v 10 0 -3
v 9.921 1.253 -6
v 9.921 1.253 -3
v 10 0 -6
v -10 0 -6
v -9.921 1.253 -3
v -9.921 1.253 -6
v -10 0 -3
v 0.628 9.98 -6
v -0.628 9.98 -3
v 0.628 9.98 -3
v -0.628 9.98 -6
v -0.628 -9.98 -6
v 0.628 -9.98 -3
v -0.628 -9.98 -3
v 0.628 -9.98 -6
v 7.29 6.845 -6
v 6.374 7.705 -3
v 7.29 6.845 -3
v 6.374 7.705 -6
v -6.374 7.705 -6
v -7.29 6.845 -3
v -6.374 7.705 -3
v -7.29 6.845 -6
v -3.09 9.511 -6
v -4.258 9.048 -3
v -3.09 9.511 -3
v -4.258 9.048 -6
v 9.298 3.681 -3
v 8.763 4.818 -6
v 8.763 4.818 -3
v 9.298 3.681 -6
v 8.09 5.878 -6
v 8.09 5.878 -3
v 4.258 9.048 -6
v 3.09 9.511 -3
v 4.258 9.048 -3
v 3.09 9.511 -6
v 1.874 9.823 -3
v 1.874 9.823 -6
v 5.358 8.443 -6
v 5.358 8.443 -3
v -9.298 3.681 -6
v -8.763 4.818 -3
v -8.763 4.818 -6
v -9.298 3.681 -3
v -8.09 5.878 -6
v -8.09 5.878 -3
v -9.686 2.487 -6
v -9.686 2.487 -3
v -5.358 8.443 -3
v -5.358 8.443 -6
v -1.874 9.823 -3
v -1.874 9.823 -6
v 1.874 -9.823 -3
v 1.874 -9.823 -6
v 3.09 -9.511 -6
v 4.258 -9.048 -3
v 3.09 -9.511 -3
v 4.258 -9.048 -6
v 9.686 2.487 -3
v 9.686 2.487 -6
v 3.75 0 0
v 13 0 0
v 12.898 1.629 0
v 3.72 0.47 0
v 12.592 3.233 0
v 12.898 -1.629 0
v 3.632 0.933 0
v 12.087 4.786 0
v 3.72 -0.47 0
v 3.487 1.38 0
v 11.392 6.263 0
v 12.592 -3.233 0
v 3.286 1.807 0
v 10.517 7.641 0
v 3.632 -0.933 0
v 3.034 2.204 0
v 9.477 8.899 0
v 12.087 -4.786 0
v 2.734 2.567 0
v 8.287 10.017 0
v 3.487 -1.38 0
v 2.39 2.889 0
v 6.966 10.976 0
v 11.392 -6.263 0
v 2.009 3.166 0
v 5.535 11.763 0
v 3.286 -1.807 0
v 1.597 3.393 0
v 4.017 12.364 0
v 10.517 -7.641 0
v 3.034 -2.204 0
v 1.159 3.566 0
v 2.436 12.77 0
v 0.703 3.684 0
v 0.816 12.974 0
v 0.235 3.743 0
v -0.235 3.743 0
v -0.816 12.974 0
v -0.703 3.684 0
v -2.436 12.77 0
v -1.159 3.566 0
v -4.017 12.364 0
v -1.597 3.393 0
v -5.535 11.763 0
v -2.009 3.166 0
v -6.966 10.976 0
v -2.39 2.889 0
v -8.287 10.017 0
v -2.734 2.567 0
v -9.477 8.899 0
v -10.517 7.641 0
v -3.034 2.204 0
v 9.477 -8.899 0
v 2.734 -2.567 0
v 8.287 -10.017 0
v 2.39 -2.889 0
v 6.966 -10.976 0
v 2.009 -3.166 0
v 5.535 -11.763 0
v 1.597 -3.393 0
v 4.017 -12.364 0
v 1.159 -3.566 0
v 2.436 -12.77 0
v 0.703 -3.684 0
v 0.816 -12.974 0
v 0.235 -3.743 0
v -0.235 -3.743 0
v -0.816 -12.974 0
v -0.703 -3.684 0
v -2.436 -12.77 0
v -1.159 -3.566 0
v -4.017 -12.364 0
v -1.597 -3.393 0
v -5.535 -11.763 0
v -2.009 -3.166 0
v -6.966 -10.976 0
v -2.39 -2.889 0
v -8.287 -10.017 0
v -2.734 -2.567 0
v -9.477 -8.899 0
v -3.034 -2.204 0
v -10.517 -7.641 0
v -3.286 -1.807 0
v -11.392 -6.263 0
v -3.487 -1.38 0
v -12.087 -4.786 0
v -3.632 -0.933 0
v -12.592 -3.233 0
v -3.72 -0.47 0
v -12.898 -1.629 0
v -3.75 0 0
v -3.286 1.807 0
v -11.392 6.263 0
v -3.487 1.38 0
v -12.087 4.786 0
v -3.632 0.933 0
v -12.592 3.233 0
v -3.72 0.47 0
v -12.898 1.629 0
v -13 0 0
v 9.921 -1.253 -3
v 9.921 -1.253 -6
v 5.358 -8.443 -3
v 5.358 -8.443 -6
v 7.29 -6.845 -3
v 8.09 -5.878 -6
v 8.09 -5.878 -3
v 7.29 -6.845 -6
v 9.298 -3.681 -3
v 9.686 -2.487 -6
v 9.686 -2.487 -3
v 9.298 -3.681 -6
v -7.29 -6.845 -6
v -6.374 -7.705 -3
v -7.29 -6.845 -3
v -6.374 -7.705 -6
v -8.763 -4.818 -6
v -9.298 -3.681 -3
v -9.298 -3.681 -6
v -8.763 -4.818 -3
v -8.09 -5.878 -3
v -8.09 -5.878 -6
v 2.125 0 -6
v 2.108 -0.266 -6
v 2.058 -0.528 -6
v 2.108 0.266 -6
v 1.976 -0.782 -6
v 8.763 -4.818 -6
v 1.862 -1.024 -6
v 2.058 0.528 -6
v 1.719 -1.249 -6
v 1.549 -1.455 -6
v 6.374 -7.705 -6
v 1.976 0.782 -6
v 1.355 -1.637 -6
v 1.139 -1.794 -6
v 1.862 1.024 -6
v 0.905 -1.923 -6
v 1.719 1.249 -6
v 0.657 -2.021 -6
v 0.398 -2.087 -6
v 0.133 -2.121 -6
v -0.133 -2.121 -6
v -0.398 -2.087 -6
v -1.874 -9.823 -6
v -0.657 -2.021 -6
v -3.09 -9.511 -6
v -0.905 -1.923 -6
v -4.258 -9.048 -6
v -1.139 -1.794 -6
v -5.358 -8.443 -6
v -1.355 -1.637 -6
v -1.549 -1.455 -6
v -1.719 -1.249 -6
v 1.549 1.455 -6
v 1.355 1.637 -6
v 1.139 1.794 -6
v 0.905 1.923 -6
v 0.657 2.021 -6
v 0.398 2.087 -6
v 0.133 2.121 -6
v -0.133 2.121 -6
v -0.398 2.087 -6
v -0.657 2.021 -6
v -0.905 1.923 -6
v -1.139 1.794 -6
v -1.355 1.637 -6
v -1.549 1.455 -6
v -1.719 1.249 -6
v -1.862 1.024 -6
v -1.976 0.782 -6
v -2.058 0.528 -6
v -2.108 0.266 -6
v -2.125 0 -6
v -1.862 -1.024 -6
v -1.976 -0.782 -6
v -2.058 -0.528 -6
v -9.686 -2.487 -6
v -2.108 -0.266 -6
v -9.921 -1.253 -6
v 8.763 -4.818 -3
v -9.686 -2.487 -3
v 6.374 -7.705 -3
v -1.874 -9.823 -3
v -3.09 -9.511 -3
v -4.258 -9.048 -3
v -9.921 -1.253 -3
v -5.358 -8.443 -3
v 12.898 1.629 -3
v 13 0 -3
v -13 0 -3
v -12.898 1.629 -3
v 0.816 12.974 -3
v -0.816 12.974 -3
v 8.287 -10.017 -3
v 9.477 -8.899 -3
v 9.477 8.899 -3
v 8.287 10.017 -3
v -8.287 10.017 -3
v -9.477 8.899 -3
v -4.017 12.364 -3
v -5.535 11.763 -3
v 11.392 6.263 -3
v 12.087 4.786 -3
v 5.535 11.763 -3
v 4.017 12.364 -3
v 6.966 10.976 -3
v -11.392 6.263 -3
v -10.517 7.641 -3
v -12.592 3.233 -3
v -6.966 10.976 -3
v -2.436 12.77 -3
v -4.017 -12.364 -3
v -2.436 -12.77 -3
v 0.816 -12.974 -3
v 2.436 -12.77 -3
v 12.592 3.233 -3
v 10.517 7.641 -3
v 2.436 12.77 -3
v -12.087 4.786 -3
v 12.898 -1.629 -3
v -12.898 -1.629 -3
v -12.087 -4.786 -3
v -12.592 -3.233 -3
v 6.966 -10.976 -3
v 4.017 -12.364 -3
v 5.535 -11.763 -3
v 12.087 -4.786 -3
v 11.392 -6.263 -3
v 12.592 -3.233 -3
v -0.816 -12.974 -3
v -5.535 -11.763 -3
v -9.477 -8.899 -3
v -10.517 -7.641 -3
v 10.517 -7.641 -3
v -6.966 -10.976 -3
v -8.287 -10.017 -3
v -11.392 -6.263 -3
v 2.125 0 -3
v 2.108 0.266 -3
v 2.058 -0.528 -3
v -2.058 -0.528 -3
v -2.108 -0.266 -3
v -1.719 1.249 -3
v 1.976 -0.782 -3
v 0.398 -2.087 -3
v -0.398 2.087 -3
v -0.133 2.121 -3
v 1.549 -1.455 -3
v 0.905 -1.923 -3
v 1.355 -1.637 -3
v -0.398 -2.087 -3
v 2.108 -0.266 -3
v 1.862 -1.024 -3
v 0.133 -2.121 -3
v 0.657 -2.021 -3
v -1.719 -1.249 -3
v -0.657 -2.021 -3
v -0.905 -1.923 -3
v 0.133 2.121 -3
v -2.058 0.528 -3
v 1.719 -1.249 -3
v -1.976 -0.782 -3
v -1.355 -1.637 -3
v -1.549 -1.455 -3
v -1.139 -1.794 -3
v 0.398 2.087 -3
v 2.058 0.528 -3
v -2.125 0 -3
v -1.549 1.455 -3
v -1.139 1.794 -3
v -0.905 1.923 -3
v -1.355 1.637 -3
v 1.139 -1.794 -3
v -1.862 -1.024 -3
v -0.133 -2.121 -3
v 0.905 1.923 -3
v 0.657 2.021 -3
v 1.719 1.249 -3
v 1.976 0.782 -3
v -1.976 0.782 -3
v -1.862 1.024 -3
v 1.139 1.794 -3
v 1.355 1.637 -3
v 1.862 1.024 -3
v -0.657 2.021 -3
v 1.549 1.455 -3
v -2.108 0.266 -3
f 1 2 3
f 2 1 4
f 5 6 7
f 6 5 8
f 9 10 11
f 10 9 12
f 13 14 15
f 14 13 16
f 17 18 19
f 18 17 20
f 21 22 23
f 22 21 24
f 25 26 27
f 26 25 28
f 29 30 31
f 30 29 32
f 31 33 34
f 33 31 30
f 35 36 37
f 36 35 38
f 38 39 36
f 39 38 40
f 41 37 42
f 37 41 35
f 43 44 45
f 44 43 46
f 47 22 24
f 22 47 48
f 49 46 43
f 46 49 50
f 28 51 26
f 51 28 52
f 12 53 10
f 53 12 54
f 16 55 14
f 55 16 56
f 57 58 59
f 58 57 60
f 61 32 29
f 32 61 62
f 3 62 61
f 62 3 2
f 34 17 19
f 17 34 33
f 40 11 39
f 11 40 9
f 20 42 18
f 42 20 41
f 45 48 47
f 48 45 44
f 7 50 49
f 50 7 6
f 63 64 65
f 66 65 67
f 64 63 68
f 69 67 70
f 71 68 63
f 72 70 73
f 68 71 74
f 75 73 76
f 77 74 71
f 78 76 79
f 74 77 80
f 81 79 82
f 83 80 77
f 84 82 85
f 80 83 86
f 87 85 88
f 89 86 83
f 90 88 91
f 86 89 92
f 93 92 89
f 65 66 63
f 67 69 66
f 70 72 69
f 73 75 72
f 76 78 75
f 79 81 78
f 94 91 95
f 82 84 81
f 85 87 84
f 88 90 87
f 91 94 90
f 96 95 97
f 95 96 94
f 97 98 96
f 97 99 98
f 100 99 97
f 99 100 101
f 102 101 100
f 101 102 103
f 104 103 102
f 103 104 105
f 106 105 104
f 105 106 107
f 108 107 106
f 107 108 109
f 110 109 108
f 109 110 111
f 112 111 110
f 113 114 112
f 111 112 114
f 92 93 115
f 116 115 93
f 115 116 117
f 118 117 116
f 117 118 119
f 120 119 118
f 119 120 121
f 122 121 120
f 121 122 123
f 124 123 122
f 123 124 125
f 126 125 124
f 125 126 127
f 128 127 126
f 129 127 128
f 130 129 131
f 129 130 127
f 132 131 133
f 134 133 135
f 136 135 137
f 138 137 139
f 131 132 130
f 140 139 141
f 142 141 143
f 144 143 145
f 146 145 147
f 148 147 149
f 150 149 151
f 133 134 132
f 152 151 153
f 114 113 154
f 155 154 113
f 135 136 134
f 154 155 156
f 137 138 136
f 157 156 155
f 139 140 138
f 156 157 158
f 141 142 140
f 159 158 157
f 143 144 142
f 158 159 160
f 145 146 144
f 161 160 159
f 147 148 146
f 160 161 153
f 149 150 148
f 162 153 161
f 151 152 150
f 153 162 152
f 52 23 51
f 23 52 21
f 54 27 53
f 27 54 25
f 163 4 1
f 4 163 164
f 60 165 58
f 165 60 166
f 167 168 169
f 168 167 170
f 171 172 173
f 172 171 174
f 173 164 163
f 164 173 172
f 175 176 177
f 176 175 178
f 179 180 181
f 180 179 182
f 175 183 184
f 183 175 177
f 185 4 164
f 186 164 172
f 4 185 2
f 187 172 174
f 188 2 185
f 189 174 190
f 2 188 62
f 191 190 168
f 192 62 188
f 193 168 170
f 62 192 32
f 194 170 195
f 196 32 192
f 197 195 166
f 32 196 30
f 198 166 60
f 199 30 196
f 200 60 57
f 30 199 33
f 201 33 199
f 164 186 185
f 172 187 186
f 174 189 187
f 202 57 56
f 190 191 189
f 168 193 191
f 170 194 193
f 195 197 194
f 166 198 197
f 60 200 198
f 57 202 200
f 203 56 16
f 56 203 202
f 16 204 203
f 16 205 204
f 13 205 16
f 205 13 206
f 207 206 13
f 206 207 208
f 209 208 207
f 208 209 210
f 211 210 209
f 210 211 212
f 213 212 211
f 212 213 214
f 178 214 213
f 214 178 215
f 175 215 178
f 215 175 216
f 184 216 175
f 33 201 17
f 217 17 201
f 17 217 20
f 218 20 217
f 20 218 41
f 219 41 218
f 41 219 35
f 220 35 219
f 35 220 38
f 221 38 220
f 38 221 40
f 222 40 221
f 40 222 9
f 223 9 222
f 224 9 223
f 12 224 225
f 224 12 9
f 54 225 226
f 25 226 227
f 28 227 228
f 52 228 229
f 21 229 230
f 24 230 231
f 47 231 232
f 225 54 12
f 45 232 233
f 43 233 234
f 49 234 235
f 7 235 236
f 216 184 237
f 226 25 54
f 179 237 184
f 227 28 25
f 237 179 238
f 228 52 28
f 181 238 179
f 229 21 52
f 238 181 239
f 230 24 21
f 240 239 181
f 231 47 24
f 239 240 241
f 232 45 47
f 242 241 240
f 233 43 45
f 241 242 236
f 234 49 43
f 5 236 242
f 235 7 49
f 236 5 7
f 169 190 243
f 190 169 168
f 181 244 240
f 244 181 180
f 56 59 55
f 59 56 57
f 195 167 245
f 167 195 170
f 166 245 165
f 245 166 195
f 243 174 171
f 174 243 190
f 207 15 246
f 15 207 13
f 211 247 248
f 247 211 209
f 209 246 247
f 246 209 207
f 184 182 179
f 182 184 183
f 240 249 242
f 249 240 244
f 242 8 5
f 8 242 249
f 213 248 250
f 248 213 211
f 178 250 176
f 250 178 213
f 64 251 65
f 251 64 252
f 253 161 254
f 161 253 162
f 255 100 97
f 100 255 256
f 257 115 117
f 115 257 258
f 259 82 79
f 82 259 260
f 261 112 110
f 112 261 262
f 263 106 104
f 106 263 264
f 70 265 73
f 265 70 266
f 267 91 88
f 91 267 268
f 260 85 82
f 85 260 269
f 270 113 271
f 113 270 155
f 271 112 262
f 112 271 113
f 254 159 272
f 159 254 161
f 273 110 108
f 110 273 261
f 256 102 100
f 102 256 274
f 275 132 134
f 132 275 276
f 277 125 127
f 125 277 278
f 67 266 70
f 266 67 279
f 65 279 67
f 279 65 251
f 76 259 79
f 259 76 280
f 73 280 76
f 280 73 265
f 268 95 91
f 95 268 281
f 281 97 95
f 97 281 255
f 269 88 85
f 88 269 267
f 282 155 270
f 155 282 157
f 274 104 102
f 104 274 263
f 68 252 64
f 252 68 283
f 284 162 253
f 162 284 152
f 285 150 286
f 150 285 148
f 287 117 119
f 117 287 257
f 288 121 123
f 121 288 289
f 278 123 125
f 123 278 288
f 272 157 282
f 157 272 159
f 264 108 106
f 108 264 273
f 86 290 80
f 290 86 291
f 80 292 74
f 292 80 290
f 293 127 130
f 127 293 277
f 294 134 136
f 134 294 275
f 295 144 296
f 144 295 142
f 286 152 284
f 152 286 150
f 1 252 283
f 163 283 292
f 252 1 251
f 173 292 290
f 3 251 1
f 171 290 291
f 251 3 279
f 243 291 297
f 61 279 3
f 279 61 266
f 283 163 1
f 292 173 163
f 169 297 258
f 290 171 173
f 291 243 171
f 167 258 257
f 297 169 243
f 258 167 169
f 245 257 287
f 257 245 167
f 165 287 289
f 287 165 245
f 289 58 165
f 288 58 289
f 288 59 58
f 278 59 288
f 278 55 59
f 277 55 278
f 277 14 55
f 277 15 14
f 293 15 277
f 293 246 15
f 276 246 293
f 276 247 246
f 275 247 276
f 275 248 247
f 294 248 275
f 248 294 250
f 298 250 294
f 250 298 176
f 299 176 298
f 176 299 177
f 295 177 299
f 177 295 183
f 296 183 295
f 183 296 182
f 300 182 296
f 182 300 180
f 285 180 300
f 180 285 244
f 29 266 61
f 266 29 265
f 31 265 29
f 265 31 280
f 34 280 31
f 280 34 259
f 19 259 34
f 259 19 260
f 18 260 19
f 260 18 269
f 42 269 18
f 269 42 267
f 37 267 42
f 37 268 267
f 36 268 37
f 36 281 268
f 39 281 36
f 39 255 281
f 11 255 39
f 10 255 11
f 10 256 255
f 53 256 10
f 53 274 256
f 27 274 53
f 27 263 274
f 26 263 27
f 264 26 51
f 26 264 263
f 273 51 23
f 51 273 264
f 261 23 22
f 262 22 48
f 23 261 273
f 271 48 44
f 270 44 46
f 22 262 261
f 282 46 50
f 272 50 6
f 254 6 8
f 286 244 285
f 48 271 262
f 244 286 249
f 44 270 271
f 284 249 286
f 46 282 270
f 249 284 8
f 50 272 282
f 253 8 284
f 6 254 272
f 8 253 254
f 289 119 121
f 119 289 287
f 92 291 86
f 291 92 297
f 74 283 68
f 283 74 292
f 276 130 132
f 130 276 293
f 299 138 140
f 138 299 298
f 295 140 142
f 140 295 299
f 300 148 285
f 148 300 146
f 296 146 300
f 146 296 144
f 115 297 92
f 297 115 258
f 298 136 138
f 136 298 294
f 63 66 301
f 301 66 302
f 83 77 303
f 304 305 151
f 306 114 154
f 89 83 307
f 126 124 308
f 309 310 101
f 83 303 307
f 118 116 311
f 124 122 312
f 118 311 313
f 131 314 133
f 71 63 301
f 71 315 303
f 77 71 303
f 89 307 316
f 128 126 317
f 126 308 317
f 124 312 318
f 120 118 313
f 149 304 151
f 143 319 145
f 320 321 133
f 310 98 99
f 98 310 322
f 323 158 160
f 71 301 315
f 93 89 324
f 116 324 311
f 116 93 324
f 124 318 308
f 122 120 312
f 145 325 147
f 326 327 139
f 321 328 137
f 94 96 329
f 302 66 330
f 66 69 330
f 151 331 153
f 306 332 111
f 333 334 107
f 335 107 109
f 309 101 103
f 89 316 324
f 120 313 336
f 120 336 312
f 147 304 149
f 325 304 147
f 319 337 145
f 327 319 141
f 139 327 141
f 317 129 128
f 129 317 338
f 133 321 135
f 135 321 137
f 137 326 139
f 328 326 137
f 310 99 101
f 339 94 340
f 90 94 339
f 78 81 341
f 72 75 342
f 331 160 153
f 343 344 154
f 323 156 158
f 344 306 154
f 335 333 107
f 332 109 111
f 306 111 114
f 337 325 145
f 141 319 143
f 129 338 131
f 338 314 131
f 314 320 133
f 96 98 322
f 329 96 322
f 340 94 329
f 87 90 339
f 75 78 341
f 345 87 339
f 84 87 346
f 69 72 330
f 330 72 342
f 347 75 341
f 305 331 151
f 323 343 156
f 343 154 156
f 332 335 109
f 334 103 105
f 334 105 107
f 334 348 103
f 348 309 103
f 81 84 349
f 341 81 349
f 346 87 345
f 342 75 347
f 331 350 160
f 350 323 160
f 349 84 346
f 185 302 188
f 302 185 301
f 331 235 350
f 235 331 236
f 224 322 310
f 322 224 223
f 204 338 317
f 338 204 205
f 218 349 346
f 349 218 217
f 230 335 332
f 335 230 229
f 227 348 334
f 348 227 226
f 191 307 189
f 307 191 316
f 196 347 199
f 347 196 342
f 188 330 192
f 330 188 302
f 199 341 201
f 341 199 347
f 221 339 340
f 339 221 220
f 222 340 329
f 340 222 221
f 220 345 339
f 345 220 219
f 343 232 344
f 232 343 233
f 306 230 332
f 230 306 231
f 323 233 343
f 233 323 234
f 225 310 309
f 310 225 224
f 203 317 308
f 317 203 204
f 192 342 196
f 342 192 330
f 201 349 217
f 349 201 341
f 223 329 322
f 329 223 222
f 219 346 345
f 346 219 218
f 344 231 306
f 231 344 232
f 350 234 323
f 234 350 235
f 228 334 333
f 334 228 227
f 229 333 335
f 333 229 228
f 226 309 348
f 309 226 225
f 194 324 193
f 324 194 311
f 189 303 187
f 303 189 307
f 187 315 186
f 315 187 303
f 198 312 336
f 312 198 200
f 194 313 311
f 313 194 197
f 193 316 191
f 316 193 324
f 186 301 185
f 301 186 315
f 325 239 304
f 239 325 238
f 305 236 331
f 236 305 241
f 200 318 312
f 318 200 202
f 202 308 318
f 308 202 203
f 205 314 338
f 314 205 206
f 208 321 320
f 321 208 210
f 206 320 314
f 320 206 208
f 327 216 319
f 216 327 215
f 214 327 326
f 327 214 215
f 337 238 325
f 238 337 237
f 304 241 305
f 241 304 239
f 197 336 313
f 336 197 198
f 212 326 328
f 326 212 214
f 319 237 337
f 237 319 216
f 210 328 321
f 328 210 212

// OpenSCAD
$fn = 50;


difference() {
	union() {
		translate(v = [0, 0, -6.0000000000]) {
			cylinder(h = 6, r = 10.0000000000);
		}
		translate(v = [0, 0, -3.0000000000]) {
			cylinder(h = 3, r = 13.0000000000);
		}
	}
	union() {
		translate(v = [0, 0, 0]) {
			rotate(a = [0, 0, 0]) {
				difference() {
					union() {
						#translate(v = [0, 0, -6.0000000000]) {
							cylinder(h = 6, r = 2.0000000000);
						}
						#translate(v = [0, 0, -3]) {
							cylinder(h = 3, r = 10.0000000000, r1 = 2.1250000000, r2 = 3.7500000000);
						}
						#translate(v = [0, 0, -6.0000000000]) {
							cylinder(h = 6, r = 2.1250000000);
						}
						#translate(v = [0, 0, -6.0000000000]) {
							cylinder(h = 6, r = 2.0000000000);
						}
					}
					union();
				}
			}
		}
	}
}
